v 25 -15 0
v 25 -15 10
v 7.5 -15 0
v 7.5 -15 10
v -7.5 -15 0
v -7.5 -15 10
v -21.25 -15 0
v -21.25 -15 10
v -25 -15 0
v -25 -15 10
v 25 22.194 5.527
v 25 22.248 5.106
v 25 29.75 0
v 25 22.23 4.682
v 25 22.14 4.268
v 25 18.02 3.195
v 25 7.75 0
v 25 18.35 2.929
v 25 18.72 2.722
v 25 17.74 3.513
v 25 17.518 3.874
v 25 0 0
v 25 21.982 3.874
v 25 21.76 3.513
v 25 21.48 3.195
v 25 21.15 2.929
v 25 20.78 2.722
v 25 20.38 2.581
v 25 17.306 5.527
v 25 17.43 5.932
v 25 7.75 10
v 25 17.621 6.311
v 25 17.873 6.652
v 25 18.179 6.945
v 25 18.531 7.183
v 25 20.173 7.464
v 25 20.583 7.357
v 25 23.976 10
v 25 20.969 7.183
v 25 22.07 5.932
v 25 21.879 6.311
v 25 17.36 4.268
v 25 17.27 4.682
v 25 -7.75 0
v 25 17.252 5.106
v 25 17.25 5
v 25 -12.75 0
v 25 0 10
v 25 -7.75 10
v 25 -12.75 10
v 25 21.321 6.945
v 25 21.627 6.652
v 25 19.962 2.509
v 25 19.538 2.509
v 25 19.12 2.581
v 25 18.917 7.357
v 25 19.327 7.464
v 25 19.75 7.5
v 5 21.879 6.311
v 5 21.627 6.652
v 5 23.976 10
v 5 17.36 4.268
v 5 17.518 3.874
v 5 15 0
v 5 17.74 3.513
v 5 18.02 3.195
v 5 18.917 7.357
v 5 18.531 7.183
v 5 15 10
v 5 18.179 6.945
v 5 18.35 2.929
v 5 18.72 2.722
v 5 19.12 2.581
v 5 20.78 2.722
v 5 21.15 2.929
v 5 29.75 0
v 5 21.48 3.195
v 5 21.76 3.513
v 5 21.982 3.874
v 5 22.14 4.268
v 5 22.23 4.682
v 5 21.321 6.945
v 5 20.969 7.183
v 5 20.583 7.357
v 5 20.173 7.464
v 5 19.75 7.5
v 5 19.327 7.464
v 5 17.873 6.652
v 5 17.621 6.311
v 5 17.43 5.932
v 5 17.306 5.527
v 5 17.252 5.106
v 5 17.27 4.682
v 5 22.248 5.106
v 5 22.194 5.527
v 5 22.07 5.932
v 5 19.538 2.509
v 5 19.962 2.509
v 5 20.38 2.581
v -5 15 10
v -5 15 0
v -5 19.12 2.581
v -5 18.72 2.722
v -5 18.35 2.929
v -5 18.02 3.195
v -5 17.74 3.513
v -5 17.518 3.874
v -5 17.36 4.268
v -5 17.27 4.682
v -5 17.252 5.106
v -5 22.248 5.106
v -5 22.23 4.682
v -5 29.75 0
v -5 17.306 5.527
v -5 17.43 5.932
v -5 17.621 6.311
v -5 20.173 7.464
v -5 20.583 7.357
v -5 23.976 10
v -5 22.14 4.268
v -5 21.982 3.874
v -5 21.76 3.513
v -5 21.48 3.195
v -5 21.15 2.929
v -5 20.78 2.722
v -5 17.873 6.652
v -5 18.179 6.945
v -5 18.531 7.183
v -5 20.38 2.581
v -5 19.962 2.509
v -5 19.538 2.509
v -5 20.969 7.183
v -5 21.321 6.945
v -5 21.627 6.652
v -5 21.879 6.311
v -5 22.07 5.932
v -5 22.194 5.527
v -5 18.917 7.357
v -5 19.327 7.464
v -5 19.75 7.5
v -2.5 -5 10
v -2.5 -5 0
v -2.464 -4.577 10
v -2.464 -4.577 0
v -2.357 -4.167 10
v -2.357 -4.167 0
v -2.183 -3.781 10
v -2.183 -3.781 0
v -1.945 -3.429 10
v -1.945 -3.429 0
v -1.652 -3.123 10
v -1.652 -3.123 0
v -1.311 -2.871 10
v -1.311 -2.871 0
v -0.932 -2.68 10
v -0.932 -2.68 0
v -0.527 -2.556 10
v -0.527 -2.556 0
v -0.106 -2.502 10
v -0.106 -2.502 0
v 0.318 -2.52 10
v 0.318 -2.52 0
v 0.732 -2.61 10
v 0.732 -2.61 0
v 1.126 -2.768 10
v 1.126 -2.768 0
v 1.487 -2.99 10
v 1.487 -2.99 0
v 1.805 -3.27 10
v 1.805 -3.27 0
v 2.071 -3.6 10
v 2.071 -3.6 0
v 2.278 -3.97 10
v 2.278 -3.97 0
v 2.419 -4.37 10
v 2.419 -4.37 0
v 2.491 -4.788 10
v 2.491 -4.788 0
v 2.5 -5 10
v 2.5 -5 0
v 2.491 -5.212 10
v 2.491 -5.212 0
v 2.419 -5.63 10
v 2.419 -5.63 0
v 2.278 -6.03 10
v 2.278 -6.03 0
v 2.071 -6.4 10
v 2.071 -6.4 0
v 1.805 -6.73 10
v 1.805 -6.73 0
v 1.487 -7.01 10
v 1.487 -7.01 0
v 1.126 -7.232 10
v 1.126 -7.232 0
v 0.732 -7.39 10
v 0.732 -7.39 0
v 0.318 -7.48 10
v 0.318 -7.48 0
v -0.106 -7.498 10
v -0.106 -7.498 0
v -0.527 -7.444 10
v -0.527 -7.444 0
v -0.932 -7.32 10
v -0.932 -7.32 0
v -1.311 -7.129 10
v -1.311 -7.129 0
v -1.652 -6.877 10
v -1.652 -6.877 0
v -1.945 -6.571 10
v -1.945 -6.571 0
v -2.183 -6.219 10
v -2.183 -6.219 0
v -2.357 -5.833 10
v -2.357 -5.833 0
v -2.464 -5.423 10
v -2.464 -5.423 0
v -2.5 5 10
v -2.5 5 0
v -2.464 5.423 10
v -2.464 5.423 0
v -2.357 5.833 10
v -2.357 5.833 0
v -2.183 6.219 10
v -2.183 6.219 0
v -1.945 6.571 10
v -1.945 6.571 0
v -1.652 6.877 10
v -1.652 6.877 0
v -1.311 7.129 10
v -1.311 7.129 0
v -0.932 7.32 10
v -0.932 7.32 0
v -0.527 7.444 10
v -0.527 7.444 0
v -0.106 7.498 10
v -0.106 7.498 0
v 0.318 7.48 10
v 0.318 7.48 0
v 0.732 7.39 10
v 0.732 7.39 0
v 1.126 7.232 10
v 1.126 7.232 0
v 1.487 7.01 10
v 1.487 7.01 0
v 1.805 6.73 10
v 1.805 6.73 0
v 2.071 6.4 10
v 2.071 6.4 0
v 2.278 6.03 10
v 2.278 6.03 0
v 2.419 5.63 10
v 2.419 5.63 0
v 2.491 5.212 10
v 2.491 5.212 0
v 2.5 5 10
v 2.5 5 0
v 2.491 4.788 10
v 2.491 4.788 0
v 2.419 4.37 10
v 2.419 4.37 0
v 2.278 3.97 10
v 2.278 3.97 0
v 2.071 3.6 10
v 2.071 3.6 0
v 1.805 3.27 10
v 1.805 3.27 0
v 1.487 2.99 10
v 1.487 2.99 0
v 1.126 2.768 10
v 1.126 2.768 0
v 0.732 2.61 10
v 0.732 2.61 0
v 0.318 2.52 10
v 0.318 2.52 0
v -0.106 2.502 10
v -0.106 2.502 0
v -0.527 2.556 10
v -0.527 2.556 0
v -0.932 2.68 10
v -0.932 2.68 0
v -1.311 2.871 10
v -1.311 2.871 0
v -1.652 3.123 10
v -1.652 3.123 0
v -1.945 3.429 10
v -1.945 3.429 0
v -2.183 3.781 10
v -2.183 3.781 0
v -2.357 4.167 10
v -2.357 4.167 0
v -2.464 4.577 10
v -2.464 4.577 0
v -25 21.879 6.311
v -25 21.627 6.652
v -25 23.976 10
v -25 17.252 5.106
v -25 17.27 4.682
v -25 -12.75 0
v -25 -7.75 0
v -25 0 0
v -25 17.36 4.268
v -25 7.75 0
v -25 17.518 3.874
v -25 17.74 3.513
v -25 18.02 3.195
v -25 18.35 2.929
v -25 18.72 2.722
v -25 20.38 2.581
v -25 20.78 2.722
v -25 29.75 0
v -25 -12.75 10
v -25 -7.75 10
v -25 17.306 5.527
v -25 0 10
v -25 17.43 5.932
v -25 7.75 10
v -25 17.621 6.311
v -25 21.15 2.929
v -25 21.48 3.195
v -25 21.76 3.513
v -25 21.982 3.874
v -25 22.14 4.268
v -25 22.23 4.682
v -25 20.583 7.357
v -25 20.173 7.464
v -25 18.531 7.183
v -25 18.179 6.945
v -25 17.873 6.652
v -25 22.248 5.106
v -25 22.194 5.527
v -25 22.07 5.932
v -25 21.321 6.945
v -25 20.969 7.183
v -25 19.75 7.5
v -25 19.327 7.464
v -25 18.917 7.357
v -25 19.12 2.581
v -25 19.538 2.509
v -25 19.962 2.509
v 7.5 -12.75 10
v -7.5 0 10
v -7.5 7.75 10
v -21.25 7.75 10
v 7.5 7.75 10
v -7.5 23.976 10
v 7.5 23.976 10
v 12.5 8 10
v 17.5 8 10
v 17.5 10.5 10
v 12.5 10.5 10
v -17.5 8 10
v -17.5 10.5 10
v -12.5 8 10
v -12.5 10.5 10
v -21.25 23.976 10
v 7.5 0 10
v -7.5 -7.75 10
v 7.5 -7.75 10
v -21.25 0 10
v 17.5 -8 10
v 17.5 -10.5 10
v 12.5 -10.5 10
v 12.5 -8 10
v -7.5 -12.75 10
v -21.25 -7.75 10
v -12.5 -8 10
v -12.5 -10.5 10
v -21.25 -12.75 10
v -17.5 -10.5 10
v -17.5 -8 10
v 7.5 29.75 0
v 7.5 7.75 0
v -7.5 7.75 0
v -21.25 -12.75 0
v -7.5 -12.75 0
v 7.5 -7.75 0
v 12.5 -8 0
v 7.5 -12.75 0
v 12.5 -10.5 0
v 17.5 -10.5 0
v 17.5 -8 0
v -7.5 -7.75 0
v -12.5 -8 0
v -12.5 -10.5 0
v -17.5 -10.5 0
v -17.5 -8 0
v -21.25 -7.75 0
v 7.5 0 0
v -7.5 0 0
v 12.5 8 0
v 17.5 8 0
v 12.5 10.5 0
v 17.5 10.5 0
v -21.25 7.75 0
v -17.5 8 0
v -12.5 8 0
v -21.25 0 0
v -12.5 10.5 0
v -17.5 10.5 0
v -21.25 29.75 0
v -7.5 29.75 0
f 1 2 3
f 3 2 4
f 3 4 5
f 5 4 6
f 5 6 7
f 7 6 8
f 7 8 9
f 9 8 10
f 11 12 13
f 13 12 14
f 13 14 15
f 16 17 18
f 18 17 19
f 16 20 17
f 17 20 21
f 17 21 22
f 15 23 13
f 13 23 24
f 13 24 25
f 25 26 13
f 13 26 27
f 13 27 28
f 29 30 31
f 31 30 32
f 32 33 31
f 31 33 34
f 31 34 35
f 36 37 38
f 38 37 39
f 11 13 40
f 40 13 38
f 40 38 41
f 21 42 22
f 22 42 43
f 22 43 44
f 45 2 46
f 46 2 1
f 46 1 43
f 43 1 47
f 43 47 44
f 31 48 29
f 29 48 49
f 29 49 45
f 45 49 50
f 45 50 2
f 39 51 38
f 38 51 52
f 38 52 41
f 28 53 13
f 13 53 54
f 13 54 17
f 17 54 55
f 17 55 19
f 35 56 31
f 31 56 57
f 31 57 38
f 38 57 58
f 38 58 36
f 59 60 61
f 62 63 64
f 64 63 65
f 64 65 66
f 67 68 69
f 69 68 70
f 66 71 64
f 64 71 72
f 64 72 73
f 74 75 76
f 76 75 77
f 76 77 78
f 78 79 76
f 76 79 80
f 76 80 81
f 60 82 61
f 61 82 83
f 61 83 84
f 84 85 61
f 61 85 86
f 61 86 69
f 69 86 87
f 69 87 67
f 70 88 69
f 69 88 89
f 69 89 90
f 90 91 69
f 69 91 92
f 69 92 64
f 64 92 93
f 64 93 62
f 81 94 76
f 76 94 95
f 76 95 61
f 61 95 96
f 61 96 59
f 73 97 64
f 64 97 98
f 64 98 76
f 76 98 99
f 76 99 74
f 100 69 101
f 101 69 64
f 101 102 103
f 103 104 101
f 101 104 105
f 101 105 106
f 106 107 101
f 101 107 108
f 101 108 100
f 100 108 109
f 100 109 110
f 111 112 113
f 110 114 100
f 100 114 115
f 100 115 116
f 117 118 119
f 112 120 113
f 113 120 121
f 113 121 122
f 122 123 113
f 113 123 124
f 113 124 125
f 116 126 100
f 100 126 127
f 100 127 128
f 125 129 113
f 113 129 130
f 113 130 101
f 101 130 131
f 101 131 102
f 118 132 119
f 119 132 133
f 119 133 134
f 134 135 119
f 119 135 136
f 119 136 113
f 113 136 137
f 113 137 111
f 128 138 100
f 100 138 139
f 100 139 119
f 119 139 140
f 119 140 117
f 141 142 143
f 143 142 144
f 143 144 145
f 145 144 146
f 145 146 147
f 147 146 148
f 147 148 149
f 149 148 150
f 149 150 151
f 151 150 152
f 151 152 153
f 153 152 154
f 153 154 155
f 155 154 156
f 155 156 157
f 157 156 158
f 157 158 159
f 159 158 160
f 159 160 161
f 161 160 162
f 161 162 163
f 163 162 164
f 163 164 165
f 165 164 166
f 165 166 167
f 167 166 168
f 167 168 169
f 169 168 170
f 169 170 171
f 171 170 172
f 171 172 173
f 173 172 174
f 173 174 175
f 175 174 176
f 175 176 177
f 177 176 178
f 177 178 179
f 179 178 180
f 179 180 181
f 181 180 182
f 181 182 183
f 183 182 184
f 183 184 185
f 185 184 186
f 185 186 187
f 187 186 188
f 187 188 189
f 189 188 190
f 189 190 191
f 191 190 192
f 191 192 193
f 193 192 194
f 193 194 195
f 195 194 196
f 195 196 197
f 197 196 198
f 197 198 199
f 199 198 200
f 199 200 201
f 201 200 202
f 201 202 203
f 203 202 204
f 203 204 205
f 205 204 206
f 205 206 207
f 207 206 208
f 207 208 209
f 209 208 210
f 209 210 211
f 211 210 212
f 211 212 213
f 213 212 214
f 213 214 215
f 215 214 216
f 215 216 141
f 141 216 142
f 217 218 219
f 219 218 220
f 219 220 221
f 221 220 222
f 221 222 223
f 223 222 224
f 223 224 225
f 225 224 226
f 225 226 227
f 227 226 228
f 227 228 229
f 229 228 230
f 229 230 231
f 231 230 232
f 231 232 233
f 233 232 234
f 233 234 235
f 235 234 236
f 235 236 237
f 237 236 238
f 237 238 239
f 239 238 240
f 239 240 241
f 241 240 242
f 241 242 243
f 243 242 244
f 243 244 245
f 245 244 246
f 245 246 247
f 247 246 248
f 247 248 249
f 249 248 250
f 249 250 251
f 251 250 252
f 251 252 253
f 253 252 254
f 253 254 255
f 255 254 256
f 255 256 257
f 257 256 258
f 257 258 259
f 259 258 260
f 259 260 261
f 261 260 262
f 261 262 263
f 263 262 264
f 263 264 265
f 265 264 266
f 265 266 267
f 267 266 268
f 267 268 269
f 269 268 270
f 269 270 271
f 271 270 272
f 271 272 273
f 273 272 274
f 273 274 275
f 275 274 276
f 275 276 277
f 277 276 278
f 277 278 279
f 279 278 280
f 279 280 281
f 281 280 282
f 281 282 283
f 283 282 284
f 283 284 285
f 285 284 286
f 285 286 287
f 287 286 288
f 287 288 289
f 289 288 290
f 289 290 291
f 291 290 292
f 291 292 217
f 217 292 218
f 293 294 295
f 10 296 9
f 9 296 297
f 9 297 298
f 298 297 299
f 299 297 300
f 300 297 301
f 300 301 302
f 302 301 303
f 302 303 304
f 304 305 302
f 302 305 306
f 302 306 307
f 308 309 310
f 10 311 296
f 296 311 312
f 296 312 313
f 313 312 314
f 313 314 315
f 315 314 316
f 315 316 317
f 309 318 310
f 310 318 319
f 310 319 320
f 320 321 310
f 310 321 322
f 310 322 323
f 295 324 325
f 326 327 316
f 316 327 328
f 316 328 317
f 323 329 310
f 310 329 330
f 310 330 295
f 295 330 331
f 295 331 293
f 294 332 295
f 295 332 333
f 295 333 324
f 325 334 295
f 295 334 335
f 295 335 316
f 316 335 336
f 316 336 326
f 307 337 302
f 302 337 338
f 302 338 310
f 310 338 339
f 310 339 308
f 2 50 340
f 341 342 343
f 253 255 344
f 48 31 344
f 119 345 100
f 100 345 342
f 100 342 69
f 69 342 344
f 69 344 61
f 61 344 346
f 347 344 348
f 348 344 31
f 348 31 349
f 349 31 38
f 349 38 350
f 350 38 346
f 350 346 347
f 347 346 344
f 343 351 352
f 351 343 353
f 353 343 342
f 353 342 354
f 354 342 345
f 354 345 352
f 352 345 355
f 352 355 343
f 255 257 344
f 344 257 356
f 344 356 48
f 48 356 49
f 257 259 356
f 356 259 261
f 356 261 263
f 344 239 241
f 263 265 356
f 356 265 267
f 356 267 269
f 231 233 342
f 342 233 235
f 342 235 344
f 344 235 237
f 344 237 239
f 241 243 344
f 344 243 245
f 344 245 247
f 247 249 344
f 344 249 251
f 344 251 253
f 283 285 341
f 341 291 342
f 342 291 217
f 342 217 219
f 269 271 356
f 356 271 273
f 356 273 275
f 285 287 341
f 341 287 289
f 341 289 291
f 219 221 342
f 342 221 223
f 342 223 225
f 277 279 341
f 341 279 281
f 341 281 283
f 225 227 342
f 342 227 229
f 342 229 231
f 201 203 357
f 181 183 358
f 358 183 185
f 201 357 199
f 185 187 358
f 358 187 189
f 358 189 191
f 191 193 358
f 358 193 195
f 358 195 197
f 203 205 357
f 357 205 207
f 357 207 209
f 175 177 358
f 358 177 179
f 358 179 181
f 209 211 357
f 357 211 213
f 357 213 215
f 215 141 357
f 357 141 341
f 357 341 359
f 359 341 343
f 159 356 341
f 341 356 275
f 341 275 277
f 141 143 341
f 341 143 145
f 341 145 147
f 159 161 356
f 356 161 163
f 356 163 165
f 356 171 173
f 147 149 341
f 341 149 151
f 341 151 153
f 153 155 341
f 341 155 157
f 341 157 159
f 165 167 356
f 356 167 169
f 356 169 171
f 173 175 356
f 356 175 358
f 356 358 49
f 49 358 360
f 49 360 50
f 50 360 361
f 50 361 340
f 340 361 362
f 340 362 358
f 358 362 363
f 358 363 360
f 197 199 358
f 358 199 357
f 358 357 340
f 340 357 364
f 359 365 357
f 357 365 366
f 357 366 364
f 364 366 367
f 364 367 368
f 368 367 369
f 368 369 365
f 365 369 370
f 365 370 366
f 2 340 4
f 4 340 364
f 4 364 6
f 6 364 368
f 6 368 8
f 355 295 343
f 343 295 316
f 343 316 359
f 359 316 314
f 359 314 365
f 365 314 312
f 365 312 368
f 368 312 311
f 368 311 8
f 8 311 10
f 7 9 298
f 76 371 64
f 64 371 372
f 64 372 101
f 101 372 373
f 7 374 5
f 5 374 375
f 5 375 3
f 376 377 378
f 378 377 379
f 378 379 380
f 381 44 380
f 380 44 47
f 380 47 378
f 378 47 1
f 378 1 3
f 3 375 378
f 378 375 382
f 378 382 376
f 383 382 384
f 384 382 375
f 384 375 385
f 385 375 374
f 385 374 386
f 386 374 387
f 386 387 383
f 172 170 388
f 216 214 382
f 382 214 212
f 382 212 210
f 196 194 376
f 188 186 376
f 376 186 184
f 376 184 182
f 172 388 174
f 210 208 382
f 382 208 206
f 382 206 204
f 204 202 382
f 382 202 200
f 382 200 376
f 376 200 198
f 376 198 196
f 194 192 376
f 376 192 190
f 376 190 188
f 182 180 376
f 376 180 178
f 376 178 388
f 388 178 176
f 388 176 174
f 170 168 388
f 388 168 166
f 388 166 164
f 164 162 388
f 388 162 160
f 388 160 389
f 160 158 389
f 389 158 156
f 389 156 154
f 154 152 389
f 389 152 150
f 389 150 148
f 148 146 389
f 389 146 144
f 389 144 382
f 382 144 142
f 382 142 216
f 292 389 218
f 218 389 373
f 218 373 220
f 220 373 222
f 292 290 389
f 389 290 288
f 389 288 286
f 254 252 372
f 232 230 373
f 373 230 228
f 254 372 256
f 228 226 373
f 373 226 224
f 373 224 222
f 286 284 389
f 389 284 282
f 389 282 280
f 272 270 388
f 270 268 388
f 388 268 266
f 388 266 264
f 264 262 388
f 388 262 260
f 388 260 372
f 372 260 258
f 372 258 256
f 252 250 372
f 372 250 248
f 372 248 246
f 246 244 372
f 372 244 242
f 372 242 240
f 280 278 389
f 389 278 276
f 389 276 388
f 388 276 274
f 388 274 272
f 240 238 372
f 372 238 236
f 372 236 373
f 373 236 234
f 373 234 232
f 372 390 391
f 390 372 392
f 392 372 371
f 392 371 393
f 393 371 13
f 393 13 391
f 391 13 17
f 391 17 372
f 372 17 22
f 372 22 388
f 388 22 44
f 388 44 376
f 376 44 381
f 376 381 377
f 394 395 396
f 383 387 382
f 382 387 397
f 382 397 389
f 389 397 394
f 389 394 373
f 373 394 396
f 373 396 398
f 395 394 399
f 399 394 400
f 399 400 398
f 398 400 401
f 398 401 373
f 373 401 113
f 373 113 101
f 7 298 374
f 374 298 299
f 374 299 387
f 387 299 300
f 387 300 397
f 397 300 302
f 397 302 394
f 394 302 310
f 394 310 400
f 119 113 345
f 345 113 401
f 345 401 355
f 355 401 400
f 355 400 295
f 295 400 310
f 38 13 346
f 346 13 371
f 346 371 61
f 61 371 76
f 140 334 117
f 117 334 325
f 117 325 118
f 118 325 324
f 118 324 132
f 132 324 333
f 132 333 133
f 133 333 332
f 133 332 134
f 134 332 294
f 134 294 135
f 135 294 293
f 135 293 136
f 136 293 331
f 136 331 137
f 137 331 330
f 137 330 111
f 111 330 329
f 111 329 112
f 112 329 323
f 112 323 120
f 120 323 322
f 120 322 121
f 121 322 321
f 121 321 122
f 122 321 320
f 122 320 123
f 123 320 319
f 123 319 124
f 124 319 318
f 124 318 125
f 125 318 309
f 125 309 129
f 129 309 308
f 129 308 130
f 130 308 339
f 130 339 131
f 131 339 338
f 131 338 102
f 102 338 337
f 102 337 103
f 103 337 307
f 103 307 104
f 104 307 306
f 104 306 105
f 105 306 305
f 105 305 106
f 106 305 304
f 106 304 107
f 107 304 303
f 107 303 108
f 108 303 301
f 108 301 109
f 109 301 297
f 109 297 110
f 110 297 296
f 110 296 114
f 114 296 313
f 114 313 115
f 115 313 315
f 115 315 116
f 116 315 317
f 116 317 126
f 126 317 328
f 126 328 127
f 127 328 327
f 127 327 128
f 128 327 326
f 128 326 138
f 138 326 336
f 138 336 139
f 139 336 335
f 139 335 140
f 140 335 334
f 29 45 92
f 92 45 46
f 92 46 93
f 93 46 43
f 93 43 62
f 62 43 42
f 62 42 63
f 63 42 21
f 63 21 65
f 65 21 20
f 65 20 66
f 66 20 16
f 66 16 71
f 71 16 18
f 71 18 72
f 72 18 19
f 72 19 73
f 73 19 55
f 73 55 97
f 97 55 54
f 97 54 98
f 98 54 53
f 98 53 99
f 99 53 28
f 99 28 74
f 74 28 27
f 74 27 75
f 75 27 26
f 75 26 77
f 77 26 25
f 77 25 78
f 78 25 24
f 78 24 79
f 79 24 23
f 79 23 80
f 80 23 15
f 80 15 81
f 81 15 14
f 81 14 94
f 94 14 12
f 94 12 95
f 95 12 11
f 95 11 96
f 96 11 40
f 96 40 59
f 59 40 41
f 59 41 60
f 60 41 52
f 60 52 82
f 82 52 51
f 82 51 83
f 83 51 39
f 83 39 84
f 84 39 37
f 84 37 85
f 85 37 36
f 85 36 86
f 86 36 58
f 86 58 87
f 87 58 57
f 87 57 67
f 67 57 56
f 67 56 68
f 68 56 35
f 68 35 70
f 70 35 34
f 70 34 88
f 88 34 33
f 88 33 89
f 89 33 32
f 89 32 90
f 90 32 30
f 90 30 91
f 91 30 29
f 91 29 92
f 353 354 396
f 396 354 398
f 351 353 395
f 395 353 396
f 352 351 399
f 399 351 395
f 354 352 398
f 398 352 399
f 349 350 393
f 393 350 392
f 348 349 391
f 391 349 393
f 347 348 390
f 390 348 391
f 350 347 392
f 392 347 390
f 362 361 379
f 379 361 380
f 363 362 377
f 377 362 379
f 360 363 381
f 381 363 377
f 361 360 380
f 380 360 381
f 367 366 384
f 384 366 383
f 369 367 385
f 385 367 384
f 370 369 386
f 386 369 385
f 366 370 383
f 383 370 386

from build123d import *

# Parameters (mm, degrees)
ESQUISSE1_R             = 2.5
BOSS_EXTRU_1_DEPTH      = 10
ENL_V_MAT_EXTRU_1_REACH = 61.034
ESQUISSE2_R             = 2.5
ESQUISSE3_W             = 5
ESQUISSE3_H             = 2.5
ENL_V_MAT_EXTRU_2_DEPTH = 10


with BuildPart() as part:
    # Esquisse1 → Boss.-Extru.1 (new body)
    with BuildSketch(Plane.XY):
        Polygon((-25, -15), (-5, -15), (5, -15), (25, -15), (25, 29.75), (5, 29.75), (5, 15), (-5, 15), (-5, 29.75), (-25, 29.75), align=None)
        with Locations((0, -5)):
            Circle(ESQUISSE1_R, mode=Mode.SUBTRACT)
        with Locations((0, 5)):
            Circle(ESQUISSE1_R, mode=Mode.SUBTRACT)
    extrude(amount=BOSS_EXTRU_1_DEPTH)

    # Enlèv. mat.-Extru.1: up to this face of the body (flat: up to its plane)
    enl_v_mat_extru_1_end = Plane(part.part.faces().sort_by_distance((25, 7.375, 5))[0])
    # Esquisse2 → Enlèv. mat.-Extru.1 (cut, up to the picked face)
    with BuildSketch(Plane.ZY.offset(25), mode=Mode.PRIVATE) as enl_v_mat_extru_1_sk1:
        with Locations((5, 19.75)):
            Circle(ESQUISSE2_R)
    enl_v_mat_extru_1_tool1 = split(extrude(enl_v_mat_extru_1_sk1.sketch, amount=-ENL_V_MAT_EXTRU_1_REACH, mode=Mode.PRIVATE), bisect_by=enl_v_mat_extru_1_end, keep=Keep.BOTH, mode=Mode.PRIVATE)
    # Esquisse2 → Enlèv. mat.-Extru.1 (cut, up to the picked face)
    with BuildSketch(Plane.ZY.offset(25), mode=Mode.PRIVATE) as enl_v_mat_extru_1_sk2:
        Polygon((0, 29.75), (10, 29.75), (10, 23.976497308), align=None)
    enl_v_mat_extru_1_tool2 = split(extrude(enl_v_mat_extru_1_sk2.sketch, amount=-ENL_V_MAT_EXTRU_1_REACH, mode=Mode.PRIVATE), bisect_by=enl_v_mat_extru_1_end, keep=Keep.BOTH, mode=Mode.PRIVATE)
    add(enl_v_mat_extru_1_tool1.solids().sort_by(Axis((-25, 19.75, 5), (1, 0, 0)))[0], mode=Mode.SUBTRACT)
    add(enl_v_mat_extru_1_tool2.solids().sort_by(Axis((-25, 27.825499, 6.666667), (1, 0, 0)))[0], mode=Mode.SUBTRACT)

    # Esquisse3 → Enlèv. mat.-Extru.2 (cut)
    with BuildSketch(Plane.XY.offset(10)):
        with Locations((-15, 9.25)):
            Rectangle(ESQUISSE3_W, ESQUISSE3_H)
        with Locations((-15, -9.25)):
            Rectangle(ESQUISSE3_W, ESQUISSE3_H)
        with Locations((15, -9.25)):
            Rectangle(ESQUISSE3_W, ESQUISSE3_H)
        with Locations((15, 9.25)):
            Rectangle(ESQUISSE3_W, ESQUISSE3_H)
    extrude(amount=-ENL_V_MAT_EXTRU_2_DEPTH, mode=Mode.SUBTRACT)


solid = part.part
